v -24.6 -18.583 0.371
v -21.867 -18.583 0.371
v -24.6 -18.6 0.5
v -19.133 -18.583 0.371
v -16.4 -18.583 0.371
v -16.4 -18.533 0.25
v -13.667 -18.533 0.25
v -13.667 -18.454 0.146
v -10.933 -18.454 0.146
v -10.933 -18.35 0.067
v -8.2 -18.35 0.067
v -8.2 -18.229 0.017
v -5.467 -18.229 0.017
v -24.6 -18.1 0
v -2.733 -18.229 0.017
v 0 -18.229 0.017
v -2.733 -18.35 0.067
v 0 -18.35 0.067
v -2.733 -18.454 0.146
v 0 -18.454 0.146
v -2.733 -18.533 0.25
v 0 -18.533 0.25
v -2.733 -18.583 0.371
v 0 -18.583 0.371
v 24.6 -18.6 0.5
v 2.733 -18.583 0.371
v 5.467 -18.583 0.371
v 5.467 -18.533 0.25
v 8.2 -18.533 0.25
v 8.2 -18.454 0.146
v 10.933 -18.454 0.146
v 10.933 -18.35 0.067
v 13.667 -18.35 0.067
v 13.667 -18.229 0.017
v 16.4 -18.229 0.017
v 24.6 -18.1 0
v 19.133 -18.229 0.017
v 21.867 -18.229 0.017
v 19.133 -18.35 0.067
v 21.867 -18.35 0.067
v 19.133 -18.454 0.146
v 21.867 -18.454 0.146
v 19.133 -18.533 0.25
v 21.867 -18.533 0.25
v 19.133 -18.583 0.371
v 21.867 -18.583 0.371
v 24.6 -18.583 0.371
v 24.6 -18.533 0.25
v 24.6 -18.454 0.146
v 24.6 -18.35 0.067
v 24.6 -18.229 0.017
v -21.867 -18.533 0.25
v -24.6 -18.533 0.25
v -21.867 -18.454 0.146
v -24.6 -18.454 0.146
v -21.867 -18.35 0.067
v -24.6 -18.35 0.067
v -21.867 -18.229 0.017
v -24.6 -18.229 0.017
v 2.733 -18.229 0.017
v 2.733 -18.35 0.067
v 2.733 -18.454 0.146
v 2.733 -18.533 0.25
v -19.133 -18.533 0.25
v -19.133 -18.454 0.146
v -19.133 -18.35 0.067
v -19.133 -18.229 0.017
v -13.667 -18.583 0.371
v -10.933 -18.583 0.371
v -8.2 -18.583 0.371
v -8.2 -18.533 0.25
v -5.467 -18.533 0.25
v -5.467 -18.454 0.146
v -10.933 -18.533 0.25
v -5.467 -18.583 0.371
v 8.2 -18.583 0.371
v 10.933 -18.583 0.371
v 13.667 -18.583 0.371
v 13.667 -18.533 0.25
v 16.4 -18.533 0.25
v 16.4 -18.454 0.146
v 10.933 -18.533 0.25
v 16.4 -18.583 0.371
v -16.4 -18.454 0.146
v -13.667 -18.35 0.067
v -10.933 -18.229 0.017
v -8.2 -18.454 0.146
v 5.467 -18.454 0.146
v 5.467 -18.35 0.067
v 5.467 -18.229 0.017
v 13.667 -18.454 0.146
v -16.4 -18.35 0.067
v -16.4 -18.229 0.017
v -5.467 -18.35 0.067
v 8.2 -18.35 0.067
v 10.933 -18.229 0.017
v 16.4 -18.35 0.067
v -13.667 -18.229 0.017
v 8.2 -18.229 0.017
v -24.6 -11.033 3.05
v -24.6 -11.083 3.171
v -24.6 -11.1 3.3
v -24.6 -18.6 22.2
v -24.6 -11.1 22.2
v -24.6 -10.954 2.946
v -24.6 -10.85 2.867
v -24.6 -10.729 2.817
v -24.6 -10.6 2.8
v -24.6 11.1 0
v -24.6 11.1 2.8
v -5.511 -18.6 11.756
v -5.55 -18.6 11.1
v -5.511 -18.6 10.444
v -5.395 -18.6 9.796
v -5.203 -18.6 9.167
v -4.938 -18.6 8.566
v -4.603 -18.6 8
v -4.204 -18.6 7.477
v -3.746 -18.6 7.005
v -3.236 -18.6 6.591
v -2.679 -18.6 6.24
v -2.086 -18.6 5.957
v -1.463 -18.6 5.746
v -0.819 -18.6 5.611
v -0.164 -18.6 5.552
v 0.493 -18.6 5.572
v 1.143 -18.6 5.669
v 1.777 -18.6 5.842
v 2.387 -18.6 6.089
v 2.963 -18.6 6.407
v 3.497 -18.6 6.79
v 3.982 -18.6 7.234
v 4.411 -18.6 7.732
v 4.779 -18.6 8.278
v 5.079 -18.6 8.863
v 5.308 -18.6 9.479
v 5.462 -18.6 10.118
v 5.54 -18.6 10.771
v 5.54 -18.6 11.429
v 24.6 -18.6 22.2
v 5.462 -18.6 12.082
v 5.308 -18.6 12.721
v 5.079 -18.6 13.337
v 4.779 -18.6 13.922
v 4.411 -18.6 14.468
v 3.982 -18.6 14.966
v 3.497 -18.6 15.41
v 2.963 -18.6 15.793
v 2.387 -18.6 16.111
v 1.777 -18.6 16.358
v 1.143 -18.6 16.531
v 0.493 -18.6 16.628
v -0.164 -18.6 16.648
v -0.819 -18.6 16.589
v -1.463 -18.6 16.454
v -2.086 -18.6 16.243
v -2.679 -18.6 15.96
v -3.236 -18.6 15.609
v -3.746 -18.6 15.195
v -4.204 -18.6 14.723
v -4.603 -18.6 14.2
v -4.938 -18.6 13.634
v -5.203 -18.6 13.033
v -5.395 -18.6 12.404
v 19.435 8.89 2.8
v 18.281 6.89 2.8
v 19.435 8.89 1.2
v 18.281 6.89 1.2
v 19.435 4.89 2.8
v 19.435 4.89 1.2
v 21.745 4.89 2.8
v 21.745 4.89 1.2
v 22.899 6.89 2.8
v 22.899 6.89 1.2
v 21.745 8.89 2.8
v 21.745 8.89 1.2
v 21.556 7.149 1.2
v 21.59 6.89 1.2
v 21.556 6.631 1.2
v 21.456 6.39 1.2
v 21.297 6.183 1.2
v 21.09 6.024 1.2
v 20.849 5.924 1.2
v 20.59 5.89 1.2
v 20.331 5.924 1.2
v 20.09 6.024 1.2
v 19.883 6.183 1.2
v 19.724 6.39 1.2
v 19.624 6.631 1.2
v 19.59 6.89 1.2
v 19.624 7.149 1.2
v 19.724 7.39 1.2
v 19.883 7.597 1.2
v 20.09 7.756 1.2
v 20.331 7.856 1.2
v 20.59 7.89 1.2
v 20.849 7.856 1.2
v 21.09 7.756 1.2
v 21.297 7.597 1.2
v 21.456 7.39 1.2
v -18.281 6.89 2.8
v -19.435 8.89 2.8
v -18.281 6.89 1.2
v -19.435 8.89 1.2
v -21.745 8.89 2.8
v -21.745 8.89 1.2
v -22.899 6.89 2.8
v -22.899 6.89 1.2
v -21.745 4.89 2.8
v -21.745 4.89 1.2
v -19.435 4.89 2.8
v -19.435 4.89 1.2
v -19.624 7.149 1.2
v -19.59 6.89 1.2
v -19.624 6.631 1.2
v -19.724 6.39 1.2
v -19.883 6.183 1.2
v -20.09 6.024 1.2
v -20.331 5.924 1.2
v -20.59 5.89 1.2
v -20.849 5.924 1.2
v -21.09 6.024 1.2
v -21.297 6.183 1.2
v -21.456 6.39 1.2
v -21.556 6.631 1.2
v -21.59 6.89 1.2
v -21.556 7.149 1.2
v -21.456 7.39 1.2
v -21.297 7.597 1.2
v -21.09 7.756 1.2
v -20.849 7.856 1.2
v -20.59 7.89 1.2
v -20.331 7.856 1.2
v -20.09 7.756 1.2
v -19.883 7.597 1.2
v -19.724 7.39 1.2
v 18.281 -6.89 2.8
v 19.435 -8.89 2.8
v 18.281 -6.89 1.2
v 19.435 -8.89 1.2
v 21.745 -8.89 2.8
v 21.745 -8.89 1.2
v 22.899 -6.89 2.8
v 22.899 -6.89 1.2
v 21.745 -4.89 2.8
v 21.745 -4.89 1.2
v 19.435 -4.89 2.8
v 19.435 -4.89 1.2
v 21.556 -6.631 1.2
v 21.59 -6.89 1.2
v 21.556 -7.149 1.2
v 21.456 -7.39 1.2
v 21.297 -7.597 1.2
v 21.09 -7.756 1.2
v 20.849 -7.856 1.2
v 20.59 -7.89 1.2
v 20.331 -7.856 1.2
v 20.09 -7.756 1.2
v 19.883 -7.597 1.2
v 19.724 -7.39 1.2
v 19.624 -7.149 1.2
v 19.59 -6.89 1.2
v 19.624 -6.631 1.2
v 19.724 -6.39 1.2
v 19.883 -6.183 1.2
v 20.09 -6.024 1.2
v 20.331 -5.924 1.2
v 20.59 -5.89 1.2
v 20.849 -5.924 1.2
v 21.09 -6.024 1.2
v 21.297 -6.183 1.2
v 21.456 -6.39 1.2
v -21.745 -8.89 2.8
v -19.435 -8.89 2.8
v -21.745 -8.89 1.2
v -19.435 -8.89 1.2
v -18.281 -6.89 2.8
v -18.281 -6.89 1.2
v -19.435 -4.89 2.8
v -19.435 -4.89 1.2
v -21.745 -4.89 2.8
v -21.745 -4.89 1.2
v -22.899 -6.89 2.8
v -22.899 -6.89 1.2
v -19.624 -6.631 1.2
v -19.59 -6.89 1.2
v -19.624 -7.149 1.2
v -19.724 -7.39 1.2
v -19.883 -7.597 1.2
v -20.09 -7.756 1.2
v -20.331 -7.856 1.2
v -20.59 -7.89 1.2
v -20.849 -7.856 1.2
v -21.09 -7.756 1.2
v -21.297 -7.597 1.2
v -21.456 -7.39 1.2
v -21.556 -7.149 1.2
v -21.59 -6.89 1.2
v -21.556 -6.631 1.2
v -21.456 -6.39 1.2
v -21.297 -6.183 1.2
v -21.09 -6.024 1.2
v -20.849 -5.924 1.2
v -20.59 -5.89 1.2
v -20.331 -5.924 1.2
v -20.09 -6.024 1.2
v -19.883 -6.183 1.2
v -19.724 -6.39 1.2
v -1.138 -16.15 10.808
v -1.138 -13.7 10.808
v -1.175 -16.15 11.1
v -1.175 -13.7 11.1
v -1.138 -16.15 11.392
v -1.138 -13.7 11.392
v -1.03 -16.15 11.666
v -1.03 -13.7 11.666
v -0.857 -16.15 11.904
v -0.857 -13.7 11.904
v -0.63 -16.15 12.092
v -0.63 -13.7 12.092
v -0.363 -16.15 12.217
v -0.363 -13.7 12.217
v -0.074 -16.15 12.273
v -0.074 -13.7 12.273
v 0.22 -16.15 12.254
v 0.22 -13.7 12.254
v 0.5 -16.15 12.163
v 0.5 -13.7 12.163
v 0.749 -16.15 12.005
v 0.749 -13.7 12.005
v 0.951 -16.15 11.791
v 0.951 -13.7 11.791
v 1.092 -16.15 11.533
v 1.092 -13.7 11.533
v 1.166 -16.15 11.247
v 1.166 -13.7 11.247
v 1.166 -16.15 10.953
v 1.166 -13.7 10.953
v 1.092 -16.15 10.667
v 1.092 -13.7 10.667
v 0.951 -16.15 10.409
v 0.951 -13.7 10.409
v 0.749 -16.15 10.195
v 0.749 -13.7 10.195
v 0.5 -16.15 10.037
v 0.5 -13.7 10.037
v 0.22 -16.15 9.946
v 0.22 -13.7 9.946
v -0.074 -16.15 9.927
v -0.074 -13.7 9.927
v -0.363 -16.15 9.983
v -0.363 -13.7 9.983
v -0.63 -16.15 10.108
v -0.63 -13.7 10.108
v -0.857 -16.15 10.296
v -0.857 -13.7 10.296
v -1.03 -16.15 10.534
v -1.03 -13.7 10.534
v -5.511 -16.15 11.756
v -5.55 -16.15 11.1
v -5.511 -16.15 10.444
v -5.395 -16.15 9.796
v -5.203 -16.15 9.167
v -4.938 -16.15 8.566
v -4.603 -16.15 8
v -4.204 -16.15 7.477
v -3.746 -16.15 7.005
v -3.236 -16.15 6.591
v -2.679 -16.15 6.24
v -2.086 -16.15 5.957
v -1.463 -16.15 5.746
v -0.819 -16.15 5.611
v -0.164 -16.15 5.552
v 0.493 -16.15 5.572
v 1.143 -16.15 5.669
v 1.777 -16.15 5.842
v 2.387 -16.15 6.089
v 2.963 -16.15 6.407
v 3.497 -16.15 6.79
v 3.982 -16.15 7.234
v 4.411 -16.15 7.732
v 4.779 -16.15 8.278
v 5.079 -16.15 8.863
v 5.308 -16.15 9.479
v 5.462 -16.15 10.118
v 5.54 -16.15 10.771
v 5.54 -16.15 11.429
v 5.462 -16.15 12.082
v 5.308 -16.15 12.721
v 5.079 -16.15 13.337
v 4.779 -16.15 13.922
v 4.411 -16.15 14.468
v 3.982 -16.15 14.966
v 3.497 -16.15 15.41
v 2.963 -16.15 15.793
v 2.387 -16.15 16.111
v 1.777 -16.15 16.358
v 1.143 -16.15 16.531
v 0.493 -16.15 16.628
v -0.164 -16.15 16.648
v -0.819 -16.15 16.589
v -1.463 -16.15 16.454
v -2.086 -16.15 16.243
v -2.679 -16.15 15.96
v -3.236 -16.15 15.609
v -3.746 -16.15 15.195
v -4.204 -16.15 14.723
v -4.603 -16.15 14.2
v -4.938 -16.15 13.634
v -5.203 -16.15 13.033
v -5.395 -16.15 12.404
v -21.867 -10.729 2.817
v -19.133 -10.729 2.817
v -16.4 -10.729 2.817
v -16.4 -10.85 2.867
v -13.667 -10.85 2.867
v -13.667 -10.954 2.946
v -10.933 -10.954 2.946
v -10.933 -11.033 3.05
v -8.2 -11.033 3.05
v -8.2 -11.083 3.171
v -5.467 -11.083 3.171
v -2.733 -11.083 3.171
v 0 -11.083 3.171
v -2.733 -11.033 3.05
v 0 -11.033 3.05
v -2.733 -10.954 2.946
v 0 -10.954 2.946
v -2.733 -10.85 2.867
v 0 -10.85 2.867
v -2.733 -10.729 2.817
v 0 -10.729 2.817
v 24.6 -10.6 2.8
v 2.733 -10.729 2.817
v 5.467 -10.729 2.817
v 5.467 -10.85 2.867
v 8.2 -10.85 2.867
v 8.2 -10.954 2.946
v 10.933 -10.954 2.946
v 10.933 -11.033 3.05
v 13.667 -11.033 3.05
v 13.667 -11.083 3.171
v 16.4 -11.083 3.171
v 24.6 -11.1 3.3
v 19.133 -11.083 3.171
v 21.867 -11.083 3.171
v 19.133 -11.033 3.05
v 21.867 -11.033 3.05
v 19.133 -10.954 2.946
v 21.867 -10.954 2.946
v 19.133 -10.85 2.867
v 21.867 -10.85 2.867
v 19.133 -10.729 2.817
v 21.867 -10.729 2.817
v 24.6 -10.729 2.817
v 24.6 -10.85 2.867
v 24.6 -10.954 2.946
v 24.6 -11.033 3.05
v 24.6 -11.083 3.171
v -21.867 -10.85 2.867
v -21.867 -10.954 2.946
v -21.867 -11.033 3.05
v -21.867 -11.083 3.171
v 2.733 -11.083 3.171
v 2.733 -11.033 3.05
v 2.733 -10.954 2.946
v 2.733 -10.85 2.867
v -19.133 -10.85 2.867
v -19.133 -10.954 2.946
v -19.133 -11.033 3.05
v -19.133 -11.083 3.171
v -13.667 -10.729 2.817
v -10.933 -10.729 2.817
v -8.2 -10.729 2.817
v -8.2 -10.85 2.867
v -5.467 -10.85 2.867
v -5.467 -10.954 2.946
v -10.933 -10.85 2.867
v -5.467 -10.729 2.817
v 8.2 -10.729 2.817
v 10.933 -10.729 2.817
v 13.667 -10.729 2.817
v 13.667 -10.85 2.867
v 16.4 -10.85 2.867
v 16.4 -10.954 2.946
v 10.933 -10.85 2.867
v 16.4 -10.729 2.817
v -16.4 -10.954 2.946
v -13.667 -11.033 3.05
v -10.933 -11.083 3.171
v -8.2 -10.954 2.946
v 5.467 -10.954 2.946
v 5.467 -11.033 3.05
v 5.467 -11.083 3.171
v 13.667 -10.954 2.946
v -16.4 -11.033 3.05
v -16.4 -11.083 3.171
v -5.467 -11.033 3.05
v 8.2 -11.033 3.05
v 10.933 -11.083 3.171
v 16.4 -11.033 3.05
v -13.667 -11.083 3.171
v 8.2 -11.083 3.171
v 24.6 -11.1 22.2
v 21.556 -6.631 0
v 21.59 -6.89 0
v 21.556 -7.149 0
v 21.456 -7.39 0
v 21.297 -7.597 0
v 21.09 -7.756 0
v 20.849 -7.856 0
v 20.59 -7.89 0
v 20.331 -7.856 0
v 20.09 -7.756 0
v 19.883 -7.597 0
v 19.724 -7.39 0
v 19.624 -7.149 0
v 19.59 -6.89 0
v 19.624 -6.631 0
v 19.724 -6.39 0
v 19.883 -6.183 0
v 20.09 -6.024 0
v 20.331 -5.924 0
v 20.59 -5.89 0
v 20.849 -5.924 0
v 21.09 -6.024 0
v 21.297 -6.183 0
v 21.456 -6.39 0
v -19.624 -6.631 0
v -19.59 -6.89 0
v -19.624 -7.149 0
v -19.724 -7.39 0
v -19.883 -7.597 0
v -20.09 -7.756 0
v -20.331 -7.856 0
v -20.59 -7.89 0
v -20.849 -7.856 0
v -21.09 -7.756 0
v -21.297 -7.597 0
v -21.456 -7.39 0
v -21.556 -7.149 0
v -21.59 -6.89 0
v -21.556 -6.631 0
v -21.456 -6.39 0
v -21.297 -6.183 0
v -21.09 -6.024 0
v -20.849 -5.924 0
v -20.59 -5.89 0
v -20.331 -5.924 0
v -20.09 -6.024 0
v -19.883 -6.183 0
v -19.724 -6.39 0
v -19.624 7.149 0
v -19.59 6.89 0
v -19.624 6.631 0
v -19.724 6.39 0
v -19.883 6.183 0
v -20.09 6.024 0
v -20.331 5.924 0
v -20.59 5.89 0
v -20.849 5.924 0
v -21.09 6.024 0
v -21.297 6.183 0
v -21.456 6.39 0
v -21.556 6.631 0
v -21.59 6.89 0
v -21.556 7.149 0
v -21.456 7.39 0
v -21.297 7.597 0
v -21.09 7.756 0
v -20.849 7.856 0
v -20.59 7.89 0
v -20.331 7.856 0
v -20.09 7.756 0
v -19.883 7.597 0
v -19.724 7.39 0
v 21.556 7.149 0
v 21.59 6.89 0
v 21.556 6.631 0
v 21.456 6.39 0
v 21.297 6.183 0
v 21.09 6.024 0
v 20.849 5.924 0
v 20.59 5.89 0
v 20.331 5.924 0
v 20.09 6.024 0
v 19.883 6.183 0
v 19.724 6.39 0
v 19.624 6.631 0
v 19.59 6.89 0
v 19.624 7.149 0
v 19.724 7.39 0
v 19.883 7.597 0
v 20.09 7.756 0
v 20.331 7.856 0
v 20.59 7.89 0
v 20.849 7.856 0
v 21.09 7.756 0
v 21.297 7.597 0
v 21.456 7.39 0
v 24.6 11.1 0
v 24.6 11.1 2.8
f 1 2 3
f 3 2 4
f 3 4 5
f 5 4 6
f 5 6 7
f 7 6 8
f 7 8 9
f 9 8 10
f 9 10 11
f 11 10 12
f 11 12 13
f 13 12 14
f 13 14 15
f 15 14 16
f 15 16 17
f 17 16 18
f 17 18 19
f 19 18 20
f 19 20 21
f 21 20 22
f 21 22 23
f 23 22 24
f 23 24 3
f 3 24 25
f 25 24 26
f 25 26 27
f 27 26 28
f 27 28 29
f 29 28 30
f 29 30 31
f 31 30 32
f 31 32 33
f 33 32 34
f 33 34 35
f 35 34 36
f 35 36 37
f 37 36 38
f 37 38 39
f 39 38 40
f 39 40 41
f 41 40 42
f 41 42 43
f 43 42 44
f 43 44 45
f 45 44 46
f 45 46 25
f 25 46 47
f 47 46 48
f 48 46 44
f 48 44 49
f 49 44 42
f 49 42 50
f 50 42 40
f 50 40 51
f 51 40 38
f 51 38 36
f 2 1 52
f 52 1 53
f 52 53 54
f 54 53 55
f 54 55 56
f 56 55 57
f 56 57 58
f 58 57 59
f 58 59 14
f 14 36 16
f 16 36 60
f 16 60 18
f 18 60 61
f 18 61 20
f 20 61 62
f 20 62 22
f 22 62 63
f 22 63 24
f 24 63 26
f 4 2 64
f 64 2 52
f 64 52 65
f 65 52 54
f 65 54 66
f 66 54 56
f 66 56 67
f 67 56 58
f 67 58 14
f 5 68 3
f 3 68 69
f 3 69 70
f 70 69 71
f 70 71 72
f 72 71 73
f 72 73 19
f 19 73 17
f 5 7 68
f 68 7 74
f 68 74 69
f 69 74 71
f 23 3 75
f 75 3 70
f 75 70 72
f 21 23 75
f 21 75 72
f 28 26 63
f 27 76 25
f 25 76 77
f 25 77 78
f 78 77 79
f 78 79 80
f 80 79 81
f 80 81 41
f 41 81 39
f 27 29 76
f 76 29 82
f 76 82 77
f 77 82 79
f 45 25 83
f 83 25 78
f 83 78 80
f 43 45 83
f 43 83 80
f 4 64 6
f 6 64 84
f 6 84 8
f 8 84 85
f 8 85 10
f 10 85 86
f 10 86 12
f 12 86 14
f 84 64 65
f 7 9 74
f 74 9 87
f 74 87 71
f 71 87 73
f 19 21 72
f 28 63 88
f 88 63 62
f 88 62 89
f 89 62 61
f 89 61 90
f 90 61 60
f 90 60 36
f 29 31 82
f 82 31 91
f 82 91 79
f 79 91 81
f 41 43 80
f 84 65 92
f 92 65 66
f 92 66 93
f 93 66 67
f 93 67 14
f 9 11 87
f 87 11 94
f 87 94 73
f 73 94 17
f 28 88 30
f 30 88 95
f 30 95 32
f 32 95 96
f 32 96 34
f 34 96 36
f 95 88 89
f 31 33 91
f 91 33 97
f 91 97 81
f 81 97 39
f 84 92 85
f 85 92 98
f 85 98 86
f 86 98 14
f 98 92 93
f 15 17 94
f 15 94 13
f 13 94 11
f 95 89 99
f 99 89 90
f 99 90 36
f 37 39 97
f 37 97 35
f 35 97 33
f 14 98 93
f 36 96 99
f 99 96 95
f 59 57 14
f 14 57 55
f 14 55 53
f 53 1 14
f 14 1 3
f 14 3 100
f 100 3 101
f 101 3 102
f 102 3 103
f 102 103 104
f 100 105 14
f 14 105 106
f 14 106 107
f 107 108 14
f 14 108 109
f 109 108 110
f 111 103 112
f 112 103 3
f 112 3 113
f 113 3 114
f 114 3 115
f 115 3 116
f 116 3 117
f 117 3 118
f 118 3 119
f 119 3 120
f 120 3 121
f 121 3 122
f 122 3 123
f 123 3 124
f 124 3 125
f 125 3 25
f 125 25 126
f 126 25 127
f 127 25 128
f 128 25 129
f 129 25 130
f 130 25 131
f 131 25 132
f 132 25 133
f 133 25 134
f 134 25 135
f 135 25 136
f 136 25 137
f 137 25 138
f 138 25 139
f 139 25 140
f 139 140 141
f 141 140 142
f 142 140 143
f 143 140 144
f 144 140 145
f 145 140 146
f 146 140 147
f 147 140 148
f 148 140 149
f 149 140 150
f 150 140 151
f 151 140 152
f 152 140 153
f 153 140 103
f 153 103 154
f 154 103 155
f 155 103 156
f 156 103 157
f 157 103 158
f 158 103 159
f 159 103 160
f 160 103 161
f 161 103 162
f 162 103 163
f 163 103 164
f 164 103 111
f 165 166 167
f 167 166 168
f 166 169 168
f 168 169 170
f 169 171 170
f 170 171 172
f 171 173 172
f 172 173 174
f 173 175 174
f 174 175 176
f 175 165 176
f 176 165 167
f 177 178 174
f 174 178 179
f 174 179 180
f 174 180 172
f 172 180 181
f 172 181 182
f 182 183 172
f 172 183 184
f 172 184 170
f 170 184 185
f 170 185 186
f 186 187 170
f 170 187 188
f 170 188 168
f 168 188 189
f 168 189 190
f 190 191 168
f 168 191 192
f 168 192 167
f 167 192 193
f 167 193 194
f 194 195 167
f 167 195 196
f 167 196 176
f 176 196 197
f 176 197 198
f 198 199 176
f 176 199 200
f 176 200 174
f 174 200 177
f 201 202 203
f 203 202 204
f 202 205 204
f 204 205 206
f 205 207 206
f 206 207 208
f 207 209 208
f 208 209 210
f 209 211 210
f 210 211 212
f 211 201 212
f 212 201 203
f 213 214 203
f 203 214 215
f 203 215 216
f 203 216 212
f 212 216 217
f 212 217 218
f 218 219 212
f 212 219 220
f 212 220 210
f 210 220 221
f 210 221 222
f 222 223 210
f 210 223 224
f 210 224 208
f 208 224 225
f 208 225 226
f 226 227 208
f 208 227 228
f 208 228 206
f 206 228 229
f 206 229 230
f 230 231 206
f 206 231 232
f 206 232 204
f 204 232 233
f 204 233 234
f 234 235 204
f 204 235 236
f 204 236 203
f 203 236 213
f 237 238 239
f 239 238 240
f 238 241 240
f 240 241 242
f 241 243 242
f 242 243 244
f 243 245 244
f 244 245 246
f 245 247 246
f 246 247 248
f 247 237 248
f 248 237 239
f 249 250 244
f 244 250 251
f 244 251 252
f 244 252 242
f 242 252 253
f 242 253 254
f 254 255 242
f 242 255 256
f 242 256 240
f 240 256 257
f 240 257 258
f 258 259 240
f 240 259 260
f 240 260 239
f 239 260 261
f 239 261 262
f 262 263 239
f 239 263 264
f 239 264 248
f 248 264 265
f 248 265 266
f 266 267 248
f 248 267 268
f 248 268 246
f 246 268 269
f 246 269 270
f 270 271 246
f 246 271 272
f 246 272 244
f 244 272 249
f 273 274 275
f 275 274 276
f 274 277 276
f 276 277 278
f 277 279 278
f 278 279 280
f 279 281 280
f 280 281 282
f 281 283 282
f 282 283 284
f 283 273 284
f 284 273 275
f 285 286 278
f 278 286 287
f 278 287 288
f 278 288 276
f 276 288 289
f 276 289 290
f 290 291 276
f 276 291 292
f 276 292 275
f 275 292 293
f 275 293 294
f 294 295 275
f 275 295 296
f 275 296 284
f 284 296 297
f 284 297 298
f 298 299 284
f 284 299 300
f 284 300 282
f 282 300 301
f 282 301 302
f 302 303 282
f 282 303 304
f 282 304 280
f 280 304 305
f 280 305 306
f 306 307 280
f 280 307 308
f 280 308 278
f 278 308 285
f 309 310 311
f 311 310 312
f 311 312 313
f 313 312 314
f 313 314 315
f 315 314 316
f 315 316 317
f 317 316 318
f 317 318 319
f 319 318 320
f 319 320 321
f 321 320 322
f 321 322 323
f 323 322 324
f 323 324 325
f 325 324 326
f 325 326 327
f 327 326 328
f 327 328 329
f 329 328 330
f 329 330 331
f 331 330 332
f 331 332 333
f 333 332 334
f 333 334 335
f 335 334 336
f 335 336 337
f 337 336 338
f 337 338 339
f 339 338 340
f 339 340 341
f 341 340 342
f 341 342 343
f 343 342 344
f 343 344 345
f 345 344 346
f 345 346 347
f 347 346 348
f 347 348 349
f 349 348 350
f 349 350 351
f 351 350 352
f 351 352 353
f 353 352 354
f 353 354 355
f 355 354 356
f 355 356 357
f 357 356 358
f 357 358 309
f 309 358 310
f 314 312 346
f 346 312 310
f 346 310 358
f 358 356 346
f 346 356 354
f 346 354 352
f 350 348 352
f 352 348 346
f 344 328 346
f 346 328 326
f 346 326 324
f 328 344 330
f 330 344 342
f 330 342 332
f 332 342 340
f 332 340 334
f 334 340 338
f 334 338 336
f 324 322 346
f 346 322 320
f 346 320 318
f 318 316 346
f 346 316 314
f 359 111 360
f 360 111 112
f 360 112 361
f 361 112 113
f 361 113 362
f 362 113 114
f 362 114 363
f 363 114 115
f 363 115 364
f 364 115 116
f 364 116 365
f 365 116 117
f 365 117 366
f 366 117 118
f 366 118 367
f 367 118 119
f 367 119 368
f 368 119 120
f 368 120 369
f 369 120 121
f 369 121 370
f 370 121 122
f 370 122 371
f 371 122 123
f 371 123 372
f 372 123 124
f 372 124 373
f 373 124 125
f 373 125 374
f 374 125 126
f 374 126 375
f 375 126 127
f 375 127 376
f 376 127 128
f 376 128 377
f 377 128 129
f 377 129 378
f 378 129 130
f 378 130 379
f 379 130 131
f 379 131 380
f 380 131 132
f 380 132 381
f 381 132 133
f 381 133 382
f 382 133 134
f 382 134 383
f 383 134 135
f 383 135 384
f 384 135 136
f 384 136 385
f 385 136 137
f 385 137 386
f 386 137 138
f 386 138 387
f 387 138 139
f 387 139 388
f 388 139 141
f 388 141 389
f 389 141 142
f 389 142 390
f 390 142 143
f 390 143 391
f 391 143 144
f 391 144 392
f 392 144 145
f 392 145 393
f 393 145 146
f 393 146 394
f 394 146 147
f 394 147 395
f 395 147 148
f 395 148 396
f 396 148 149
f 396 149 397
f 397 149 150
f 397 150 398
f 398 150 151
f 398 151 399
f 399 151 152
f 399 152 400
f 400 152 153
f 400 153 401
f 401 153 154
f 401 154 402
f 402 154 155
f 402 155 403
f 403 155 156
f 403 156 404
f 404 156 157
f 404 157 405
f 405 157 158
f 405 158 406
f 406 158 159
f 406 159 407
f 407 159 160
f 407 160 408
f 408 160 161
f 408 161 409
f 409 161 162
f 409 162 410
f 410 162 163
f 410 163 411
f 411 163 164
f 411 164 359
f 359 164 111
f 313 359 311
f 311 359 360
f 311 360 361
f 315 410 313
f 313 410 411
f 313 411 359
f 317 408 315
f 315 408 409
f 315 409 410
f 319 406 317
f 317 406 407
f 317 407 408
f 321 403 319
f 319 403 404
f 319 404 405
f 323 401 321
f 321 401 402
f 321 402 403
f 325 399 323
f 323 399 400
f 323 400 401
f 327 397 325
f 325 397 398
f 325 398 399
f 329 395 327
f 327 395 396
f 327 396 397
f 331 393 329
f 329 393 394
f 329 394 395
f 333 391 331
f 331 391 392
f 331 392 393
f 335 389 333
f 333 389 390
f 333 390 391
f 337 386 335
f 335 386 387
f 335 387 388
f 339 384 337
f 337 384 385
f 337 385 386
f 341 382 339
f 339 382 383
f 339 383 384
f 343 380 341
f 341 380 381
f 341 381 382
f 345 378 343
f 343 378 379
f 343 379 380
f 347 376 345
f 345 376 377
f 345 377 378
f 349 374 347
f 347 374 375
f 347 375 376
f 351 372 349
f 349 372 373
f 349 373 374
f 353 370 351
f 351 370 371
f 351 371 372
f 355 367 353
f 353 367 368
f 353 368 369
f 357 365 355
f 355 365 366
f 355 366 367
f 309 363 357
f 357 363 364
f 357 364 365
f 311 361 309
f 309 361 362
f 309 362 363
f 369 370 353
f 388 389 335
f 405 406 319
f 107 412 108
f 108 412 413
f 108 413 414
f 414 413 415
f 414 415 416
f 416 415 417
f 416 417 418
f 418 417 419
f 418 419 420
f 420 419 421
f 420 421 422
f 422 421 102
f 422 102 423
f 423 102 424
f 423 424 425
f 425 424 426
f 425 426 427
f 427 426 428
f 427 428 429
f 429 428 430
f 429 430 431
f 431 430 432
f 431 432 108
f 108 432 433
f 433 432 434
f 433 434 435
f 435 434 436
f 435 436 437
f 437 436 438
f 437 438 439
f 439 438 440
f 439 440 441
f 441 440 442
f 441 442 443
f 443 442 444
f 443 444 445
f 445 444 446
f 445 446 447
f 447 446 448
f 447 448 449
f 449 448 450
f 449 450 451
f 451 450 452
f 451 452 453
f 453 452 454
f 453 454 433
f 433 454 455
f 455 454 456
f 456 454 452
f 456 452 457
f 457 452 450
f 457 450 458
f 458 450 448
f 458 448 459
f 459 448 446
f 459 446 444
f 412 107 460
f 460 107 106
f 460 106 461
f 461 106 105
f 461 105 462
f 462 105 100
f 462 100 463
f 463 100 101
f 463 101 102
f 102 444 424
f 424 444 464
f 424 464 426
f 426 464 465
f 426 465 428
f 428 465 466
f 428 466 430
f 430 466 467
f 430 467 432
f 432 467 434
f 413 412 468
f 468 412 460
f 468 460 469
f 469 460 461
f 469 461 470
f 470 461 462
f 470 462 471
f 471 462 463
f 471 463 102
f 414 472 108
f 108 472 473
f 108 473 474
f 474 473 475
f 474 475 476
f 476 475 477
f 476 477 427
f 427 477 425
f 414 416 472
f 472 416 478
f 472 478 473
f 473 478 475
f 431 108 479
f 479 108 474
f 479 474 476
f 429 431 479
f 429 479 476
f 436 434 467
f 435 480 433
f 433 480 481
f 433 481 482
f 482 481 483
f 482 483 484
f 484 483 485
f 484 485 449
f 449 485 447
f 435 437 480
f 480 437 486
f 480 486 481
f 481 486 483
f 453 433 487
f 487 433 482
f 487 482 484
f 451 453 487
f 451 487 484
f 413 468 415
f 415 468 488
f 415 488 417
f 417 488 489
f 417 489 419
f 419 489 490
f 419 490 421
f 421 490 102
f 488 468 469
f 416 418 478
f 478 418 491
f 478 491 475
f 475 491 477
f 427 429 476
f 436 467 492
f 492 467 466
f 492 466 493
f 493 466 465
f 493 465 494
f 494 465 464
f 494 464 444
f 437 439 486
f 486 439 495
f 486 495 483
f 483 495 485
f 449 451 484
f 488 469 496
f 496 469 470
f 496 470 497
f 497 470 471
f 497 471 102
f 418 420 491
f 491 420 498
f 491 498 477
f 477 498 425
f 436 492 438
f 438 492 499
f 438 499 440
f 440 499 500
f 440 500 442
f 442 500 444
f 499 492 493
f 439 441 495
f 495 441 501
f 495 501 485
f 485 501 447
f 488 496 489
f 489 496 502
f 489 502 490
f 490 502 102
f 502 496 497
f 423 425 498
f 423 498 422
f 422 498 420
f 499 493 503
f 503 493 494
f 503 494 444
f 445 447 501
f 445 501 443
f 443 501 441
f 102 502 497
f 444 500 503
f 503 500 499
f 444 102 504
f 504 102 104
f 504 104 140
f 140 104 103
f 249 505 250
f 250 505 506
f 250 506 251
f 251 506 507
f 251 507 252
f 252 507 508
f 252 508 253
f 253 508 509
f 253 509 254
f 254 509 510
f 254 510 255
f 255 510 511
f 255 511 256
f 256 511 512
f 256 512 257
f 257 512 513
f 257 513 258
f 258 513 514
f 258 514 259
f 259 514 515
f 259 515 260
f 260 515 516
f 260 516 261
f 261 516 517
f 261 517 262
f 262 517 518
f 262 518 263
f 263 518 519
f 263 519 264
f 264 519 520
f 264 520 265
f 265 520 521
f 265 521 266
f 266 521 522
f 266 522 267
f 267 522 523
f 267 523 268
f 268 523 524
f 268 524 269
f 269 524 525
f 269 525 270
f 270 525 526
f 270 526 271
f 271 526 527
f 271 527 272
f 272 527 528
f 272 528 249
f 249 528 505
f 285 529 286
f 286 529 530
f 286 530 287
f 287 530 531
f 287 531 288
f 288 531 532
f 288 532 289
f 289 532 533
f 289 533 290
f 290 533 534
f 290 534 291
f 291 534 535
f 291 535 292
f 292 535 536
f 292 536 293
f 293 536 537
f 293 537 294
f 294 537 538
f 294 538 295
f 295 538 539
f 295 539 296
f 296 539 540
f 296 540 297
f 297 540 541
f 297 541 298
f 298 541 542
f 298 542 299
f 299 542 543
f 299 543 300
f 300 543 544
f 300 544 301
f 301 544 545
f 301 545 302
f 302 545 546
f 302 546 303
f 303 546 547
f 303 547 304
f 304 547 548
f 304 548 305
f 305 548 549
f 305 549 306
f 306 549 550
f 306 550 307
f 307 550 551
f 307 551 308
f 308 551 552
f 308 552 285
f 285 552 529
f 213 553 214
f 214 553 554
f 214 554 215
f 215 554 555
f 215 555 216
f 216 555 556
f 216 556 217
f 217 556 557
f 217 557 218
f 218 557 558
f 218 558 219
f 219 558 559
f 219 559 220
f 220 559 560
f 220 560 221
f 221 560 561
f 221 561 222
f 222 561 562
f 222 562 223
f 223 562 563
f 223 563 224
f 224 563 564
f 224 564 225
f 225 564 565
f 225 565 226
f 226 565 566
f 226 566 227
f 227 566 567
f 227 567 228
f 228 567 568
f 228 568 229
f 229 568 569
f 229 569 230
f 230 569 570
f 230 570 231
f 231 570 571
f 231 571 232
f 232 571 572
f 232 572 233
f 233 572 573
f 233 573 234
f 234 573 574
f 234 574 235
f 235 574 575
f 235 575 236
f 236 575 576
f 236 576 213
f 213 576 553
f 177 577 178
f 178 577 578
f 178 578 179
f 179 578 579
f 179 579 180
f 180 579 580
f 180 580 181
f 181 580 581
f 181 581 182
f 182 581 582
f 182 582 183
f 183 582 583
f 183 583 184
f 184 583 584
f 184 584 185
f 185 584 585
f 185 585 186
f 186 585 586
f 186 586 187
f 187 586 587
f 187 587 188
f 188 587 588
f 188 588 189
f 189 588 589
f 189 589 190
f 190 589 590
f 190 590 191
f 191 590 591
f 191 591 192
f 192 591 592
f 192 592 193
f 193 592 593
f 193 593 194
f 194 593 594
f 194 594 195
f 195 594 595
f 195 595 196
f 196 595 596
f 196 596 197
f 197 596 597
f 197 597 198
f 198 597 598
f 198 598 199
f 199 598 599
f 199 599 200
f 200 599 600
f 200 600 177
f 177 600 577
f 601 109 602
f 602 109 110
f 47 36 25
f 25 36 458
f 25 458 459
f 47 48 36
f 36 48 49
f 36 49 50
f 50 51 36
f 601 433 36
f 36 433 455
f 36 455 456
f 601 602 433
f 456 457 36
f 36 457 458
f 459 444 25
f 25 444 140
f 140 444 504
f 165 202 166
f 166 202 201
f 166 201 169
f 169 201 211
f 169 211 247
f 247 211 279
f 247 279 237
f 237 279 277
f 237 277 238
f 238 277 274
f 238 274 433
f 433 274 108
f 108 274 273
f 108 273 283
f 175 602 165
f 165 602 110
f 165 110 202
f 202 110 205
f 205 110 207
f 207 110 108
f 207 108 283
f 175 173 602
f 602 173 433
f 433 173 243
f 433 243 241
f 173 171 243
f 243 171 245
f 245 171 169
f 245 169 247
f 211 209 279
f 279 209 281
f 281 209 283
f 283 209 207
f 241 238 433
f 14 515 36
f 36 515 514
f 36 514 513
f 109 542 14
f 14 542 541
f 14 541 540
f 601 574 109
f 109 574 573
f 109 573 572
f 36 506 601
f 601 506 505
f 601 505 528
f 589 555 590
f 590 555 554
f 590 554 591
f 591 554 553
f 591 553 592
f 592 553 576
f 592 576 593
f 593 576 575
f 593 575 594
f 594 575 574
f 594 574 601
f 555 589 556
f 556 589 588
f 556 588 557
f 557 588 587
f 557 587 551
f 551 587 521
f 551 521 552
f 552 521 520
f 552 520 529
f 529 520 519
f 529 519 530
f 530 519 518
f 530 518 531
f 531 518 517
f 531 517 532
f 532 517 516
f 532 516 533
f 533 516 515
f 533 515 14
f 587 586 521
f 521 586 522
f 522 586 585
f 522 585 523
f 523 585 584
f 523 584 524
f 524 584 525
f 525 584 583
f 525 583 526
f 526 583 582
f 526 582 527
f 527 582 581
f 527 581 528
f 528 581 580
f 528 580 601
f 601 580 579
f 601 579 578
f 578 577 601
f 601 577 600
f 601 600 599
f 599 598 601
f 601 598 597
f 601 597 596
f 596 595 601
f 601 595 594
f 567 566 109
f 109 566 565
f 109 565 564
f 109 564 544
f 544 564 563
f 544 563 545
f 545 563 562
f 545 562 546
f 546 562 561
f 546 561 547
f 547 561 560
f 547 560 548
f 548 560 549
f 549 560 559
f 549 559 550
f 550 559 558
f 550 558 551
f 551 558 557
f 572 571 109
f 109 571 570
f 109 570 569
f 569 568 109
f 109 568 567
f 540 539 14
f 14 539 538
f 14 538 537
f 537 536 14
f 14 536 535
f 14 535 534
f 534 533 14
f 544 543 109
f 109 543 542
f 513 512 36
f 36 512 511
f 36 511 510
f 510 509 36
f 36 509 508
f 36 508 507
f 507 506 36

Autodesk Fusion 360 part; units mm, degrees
sketch "Boceto1" plane through (0, 0, 0) normal (0, 0, 1) x (1, 0, 0)
  line L0 (24.6, -11.1) -> (-24.6, -11.1)
  line L1 (-24.6, -11.1) -> (-24.6, 11.1)
  line L2 (-24.6, 11.1) -> (24.6, 11.1)
  line L3 (24.6, 11.1) -> (24.6, -11.1)
  line L4 (24.6, -11.1) -> (-24.6, 11.1) construction
  line L5 (-24.6, -11.1) -> (24.6, 11.1) construction
  circle A0 centre (-20.59, 6.89) radius 1
  line L6 (-24.6, 0) -> (24.6, 0) construction
  circle A1 centre (-20.59, -6.89) radius 1
  line L7 (-20.59, 6.89) -> (-20.59, -6.89) construction
  line L8 (0, 11.1) -> (0, -11.1) construction
  circle A2 centre (20.59, 6.89) radius 1
  circle A3 centre (20.59, -6.89) radius 1
  line L9 (24.6, -18.6) -> (-24.6, -18.6)
  line L10 (-24.6, -18.6) -> (-24.6, -11.1)
  line L11 (-24.6, -11.1) -> (24.6, -11.1)
  line L12 (24.6, -11.1) -> (24.6, -18.6)
  line L13 (24.6, -18.6) -> (-24.6, -11.1) construction
  line L14 (-24.6, -18.6) -> (24.6, -11.1) construction
  point P0 (-20.59, -5.89)
  point P1 (-20.59, 5.89)
  point P2 (0, -14.85)
  dimension "d1" = 22.2
  dimension "d2" = 49.2
  dimension "d3" = 2
  dimension "d4" = 4.01
  dimension "d5" = 4.21
  dimension "d10" = 49.2
  dimension "d11" = 7.5
extrude "Extruir1" add sketch "Boceto1" along normal blind 2.8 contours L0 L1 L2 L3 L11
extrude "Extruir2" add sketch "Boceto1" along normal blind 22.2 contours L0 L9 L10 L11 L12
fillet "Empalme1" radius 0.5 1 edges at (0, -11.1, 2.8)
sketch "Boceto2" plane through (0, -18.6, 0) normal (0, -1, 0) x (1, 0, 0)
  line L0 (-24.6, 0) -> (24.6, 0)
  line L1 (24.6, 0) -> (24.6, 22.2)
  line L2 (24.6, 22.2) -> (-24.6, 22.2)
  line L3 (-24.6, 22.2) -> (-24.6, 0)
  circle A0 centre (0, 11.1) radius 5.55
  line L4 (-24.6, 11.1) -> (24.6, 11.1) construction
  circle A1 centre (0, 11.1) radius 1.175
  dimension "d20" = 11.1
  dimension "d21" = 2.35
extrude "Extruir3" cut sketch "Boceto2" against normal blind 2.45 contours A0
extrude "Extruir4" cut sketch "Boceto2" against normal blind 4.9 contours A1
sketch "Boceto3" plane through (0, 0, 2.8) normal (0, 0, 1) x (-1, 0, 0)
  line L0 (24.6, 10.6) -> (-24.6, 10.6)
  line L1 (-24.6, 10.6) -> (-24.6, -11.1)
  line L2 (-24.6, -11.1) -> (24.6, -11.1)
  line L3 (24.6, -11.1) -> (24.6, 10.6)
  circle A0 centre (-20.59, -6.89) radius 1
  circle A1 centre (20.59, -6.89) radius 1
  circle A2 centre (20.59, 6.89) radius 1
  circle A3 centre (-20.59, 6.89) radius 1
  line L4 (-19.4353, -8.89) -> (-18.2806, -6.89)
  line L5 (-18.2806, -6.89) -> (-19.4353, -4.89)
  line L6 (-19.4353, -4.89) -> (-21.7447, -4.89)
  line L7 (-21.7447, -4.89) -> (-22.8994, -6.89)
  line L8 (-22.8994, -6.89) -> (-21.7447, -8.89)
  line L9 (-21.7447, -8.89) -> (-19.4353, -8.89)
  line L10 (0, 10.6) -> (0, -11.1) construction
  line L11 (-18.2806, 6.89) -> (-19.4353, 8.89)
  line L12 (-19.4353, 8.89) -> (-21.7447, 8.89)
  line L13 (-21.7447, 8.89) -> (-22.8994, 6.89)
  line L14 (-22.8994, 6.89) -> (-21.7447, 4.89)
  line L15 (-21.7447, 4.89) -> (-19.4353, 4.89)
  line L16 (-19.4353, 4.89) -> (-18.2806, 6.89)
  line L17 (21.7447, -8.89) -> (19.4353, -8.89)
  line L18 (19.4353, -8.89) -> (18.2806, -6.89)
  line L19 (18.2806, -6.89) -> (19.4353, -4.89)
  line L20 (22.8994, -6.89) -> (21.7447, -8.89)
  line L21 (21.7447, -4.89) -> (22.8994, -6.89)
  line L22 (19.4353, -4.89) -> (21.7447, -4.89)
  line L23 (21.7447, 4.89) -> (19.4353, 4.89)
  line L24 (19.4353, 4.89) -> (18.2806, 6.89)
  line L25 (18.2806, 6.89) -> (19.4353, 8.89)
  line L26 (19.4353, 8.89) -> (21.7447, 8.89)
  line L27 (21.7447, 8.89) -> (22.8994, 6.89)
  line L28 (22.8994, 6.89) -> (21.7447, 4.89)
  point P0 (-20.59, -6.89)
  point P1 (-20.59, 6.89)
  dimension "d26" = 2
  dimension "d27" = 2
extrude "Extruir5" cut sketch "Boceto3" against normal blind 1.6 contours L4 L5 L6 L7 L8 L9 | L11 L12 L13 L14 L15 L16 | L17 L18 L19 L20 L21 L22 | L23 L24 L25 L26 L27 L28
fillet "Empalme3" radius 0.5 1 edges at (0, -18.6, 0)
equation "d1 = 18 mm + tolerancia * 2 + grosor2 * 2"
equation "d2 = 45 mm + tolerancia * 2 + grosor2 * 2"
equation "d3 = 1.9 mm + tolerancia"
equation "d4 = 1.91 mm + grosor2 + tolerancia"
equation "d5 = 2.11 mm + grosor2 + tolerancia"
equation "grosor1 = 2.8 mm"
equation "grosor2 = 2 mm"
equation "grosor3 = 7.5 mm"
equation "tolerancia = 0.1 mm"
equation "d10 = d2"
equation "d11 = grosor3"
equation "d12 = grosor1"
equation "d14 = d1"
equation "d20 = 11 mm + tolerancia"
equation "d21 = 2.25 mm + tolerancia"
properties part number "Configuracion 1"
